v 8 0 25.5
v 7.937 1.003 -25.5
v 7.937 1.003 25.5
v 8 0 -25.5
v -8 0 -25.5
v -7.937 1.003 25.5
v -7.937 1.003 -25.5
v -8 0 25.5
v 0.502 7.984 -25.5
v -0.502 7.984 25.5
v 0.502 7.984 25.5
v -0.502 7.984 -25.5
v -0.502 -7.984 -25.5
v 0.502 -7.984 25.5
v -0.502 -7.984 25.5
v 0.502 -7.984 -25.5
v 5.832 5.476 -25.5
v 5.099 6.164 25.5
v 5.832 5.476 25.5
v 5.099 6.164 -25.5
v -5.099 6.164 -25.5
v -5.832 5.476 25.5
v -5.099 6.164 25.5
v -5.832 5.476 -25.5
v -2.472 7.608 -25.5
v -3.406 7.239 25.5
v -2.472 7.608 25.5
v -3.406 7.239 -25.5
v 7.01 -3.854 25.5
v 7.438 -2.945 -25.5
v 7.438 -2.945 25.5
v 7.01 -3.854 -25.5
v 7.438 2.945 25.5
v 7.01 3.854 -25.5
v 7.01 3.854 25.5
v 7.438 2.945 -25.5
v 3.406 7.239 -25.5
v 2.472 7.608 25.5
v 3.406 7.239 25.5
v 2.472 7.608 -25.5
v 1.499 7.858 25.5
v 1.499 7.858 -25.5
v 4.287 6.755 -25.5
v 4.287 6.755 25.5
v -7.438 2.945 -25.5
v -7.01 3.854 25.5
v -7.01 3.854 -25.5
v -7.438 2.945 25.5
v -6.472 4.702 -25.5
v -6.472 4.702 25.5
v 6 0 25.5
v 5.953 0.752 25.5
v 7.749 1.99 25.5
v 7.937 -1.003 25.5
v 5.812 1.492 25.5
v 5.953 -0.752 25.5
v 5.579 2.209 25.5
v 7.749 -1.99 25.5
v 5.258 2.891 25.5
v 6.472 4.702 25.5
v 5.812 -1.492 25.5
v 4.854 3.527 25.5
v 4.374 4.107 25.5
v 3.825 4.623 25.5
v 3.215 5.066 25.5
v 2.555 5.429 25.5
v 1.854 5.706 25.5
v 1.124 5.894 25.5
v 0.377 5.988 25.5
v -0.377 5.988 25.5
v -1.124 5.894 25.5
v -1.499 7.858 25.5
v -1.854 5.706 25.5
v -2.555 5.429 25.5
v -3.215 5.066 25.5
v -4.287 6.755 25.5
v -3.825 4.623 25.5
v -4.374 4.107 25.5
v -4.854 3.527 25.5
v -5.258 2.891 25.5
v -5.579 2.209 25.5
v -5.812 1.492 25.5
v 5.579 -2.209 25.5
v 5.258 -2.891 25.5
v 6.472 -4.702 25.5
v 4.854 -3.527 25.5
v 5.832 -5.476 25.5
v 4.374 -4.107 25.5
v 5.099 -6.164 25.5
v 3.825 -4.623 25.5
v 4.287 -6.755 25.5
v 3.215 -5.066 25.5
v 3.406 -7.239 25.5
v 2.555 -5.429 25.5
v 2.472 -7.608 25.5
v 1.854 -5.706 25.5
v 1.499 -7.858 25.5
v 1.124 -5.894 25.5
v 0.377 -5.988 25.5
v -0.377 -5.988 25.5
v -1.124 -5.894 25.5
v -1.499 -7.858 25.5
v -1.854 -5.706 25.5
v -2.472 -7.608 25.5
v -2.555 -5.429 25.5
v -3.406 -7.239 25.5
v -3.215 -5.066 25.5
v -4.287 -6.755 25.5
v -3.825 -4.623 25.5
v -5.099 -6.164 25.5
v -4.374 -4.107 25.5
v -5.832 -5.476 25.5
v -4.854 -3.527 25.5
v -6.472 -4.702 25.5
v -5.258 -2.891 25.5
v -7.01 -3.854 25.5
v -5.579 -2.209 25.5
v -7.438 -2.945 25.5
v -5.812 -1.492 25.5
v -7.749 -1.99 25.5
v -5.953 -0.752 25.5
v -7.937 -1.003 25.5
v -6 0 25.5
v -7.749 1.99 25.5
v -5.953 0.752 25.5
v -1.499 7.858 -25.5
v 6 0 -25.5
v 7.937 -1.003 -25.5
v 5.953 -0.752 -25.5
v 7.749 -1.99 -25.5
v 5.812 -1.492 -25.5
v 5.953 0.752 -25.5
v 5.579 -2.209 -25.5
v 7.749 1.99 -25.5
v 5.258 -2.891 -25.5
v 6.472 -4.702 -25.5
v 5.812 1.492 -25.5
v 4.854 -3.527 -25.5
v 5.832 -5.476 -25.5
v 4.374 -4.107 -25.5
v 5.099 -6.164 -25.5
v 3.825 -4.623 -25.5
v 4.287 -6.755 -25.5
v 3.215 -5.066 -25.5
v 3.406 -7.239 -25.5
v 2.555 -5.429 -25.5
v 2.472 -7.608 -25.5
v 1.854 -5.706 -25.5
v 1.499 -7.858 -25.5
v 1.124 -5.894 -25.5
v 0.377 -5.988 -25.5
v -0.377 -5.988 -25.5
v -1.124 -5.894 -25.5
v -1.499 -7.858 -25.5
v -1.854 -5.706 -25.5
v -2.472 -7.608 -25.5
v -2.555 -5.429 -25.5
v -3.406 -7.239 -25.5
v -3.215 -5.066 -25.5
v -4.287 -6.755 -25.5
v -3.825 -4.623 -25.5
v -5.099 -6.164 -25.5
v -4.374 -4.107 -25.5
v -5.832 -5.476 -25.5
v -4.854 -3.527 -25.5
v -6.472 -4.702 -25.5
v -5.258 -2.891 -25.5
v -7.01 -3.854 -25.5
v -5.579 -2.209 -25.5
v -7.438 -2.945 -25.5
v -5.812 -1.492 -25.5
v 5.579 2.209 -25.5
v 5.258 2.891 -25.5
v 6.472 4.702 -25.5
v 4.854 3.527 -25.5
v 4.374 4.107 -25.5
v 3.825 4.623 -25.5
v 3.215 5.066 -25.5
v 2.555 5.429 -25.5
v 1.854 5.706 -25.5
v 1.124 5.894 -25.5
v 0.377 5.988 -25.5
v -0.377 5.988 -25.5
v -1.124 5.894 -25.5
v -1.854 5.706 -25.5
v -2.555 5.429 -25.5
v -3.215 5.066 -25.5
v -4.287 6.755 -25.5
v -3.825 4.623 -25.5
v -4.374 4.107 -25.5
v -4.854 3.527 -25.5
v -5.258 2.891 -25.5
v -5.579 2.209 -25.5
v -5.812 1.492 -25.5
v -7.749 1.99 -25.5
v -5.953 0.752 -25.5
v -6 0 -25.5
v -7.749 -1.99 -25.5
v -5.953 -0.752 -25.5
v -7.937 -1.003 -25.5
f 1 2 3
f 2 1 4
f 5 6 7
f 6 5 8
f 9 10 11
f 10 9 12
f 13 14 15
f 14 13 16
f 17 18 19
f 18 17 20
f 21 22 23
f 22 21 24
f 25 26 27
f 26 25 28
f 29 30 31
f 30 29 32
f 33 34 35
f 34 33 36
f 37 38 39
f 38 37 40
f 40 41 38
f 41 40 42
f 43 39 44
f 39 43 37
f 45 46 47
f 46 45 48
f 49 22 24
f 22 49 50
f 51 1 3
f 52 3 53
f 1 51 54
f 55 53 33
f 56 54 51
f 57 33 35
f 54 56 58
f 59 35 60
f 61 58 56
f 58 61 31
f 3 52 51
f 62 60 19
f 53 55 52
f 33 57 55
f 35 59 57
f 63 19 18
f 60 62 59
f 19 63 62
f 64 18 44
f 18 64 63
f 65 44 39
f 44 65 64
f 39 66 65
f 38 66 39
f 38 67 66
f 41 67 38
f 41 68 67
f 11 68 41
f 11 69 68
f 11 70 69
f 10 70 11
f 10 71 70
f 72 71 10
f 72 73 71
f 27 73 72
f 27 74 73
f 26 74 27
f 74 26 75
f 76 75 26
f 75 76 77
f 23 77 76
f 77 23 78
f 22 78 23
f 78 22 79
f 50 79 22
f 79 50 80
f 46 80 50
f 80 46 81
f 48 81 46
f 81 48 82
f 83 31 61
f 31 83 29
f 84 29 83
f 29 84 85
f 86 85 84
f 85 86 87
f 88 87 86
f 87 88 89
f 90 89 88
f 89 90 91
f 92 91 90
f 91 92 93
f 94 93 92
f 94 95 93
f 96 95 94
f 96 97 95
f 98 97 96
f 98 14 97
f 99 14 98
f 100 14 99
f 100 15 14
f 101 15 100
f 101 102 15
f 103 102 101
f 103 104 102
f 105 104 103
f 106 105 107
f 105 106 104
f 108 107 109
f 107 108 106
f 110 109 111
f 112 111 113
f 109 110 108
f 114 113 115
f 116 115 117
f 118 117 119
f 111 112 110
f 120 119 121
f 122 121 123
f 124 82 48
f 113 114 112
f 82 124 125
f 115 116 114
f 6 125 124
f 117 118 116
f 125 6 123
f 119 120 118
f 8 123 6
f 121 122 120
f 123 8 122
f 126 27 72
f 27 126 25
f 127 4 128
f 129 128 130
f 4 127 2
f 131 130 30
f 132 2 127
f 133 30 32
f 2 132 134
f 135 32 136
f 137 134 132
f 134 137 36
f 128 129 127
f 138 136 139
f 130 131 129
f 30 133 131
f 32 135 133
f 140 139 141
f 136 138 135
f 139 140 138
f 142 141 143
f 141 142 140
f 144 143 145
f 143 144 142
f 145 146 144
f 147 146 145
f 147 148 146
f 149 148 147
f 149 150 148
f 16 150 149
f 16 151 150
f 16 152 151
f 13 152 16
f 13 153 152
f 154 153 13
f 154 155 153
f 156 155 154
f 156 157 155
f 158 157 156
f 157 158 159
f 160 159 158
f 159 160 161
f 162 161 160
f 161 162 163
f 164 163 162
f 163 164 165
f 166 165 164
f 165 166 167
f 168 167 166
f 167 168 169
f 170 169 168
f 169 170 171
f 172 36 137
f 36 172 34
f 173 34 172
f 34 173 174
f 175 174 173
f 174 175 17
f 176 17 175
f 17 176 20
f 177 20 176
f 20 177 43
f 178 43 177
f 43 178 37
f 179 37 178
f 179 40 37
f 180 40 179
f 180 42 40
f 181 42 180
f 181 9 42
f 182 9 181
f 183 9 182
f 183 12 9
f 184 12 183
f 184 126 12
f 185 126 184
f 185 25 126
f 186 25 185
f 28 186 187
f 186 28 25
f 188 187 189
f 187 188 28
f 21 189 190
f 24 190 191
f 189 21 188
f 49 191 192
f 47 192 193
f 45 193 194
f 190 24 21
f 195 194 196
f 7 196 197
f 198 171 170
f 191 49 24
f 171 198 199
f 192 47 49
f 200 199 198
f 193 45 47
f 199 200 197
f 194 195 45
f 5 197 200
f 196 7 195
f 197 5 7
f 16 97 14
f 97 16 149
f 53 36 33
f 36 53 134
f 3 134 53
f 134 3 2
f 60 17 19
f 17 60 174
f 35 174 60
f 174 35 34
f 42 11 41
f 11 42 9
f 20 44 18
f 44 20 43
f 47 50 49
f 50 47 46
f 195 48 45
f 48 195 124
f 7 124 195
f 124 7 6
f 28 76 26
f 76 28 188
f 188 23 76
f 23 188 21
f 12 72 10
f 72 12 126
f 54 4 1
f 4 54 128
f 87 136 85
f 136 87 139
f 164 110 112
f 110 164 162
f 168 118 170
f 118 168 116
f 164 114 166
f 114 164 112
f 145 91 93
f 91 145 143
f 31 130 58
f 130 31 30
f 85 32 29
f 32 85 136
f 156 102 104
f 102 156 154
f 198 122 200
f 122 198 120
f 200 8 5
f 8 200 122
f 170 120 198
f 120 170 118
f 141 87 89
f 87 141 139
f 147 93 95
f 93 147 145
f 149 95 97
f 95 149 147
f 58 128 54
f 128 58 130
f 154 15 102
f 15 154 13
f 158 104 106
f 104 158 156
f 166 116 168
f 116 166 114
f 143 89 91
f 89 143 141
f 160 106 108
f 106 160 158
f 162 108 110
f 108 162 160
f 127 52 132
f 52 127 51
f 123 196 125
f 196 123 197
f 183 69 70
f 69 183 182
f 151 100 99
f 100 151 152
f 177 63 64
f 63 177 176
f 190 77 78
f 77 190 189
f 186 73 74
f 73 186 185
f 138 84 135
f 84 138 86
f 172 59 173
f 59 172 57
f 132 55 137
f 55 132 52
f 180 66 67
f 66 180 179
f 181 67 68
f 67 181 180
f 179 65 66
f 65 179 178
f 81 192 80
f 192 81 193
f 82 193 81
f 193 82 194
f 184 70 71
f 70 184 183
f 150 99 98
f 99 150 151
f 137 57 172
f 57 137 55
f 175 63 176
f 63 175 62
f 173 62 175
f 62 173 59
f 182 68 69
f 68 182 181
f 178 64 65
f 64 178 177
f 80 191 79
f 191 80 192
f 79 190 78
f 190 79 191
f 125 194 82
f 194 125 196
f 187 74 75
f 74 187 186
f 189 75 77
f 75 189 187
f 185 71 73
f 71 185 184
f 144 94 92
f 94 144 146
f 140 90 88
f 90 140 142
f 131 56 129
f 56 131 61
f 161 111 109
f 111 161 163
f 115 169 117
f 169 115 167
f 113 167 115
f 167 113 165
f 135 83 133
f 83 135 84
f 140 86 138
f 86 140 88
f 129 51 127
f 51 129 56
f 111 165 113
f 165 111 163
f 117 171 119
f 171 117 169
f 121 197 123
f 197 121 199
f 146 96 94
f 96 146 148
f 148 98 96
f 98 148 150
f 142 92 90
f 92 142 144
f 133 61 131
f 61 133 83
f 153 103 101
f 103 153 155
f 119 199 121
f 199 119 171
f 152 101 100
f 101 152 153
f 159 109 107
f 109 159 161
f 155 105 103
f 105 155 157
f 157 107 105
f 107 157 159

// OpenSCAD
$fn = 50;


difference() {
	union() {
		translate(v = [0, 0, -25.5000000000]) {
			cylinder(h = 51, r = 8.0000000000);
		}
	}
	union() {
		translate(v = [0, 0, -100.0000000000]) {
			cylinder(h = 200, r = 6);
		}
	}
}
